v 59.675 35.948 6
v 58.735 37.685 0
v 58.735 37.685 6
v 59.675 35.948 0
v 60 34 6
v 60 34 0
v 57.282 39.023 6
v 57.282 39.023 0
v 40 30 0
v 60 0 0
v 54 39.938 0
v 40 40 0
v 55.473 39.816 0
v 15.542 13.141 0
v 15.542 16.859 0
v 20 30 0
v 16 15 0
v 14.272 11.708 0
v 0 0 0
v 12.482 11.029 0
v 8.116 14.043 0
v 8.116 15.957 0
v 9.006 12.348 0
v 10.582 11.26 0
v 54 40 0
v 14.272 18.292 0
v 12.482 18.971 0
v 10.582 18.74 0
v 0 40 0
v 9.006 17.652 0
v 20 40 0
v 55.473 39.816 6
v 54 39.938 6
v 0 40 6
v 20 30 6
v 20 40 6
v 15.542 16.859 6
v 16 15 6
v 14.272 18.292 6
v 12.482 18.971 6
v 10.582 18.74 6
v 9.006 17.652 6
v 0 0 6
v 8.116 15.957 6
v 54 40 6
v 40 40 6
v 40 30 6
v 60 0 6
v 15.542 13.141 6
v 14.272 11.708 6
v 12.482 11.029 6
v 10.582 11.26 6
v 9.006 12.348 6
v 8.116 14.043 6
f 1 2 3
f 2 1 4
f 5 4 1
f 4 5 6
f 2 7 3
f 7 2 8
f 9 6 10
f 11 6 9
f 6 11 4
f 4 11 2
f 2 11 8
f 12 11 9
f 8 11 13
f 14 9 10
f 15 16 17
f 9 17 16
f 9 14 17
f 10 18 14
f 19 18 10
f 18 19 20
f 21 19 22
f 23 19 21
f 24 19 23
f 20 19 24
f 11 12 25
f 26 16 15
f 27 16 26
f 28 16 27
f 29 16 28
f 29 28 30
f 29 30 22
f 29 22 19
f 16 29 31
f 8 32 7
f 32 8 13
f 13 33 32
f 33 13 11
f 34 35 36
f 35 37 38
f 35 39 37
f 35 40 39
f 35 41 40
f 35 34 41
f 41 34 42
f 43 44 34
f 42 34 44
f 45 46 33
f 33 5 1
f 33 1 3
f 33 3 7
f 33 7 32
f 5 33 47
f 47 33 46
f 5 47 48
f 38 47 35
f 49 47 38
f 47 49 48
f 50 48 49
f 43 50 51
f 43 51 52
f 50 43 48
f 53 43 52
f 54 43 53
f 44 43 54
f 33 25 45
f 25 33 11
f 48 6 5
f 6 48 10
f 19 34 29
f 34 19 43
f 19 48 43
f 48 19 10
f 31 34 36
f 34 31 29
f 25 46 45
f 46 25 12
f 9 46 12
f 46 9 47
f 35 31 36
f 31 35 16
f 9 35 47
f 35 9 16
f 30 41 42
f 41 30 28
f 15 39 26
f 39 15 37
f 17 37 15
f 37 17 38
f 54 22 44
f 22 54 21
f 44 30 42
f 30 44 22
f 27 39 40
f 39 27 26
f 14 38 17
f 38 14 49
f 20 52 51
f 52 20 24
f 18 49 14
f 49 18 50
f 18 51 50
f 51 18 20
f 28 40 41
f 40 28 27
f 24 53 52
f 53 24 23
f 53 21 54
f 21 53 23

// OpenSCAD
/* doodle-meta {"version":1,"parameters":{"width":{"label":"Overall width","description":"Changes the body width","unit":"mm","feature":"body_width"},"depth":{"label":"Overall depth","description":"Changes the body depth","unit":"mm","feature":"body_depth"},"thickness":{"label":"Thickness","description":"Changes the plate thickness","unit":"mm","feature":"body_thickness"},"notch_width":{"label":"Notch width","description":"Changes the width of the top notch","unit":"mm","feature":"notch"},"notch_depth":{"label":"Notch depth","description":"Changes the depth of the top notch","unit":"mm","feature":"notch"},"hole_diameter":{"label":"Hole diameter","description":"Changes the diameter of the through hole","unit":"mm","feature":"hole"},"hole_x":{"label":"Hole X position","description":"Changes the X position of the hole center","unit":"mm","feature":"hole"},"hole_y":{"label":"Hole Y position","description":"Changes the Y position of the hole center","unit":"mm","feature":"hole"},"fillet_radius":{"label":"Fillet radius","description":"Changes the radius of the top-right corner fillet","unit":"mm","feature":"fillet"}},"features":{"body_width":{"kind":"dimension","axis":"x","label":"Overall width"},"body_depth":{"kind":"dimension","axis":"y","label":"Overall depth"},"body_thickness":{"kind":"dimension","axis":"z","label":"Thickness"},"notch":{"kind":"region","label":"Top Notch","min":[{"parameter":"width","scale":0.5,"offset":-10},{"parameter":"depth","scale":1,"offset":-10},0],"max":[{"parameter":"width","scale":0.5,"offset":10},{"parameter":"depth","scale":1,"offset":0},{"parameter":"thickness","scale":1,"offset":0}]},"hole":{"kind":"region","label":"Through Hole","min":[{"parameter":"hole_x","scale":1,"offset":-4},{"parameter":"hole_y","scale":1,"offset":-4},0],"max":[{"parameter":"hole_x","scale":1,"offset":4},{"parameter":"hole_y","scale":1,"offset":4},{"parameter":"thickness","scale":1,"offset":0}]},"fillet":{"kind":"region","label":"Top Right Fillet","min":[{"parameter":"width","scale":1,"offset":-6},{"parameter":"depth","scale":1,"offset":-6},0],"max":[{"parameter":"width","scale":1,"offset":0},{"parameter":"depth","scale":1,"offset":0},{"parameter":"thickness","scale":1,"offset":0}]}}} */

// Top-level parameters (allowlist)
width = 60;
depth = 40;
thickness = 6;
notch_width = 20;
notch_depth = 10;
hole_diameter = 8;
hole_x = 12;
hole_y = 15;
fillet_radius = 6;

// Derived constants (not in allowlist)
eps = 0.01;

// Main design
notched_plate();

module notched_plate() {
    difference() {
        // Positive body: extruded profile with fillet
        union() {
            // Main rectangular body
            cube([width, depth, thickness]);
            
            // Fillet at top-right corner (X=width, Y=depth)
            // The fillet replaces the sharp corner. We add a quarter cylinder 
            // and subtract the corner cube to create the rounded effect, 
            // or more simply, we can model the base shape with the fillet included.
            // However, standard CSG approach:
            // 1. Start with full rectangle.
            // 2. Subtract the corner square.
            // 3. Add the quarter cylinder.
            // But since we are using difference() for the whole object, 
            // it's cleaner to build the positive shape first.
            
            // Let's rebuild the positive shape properly:
            // Base rectangle minus corner square plus quarter cylinder
        }
        
        // Subtract the notch
        notch_cutter();
        
        // Subtract the hole
        hole_cutter();
    }
}

// Helper to build the positive body with fillet
module positive_body() {
    // The main body is a rectangle with a filleted corner.
    // We can construct this by:
    // 1. A cube covering the whole area.
    // 2. Subtracting the corner square (width-fillet_radius to width, depth-fillet_radius to depth).
    // 3. Adding a quarter cylinder at the corner.
    
    // Since we are inside a difference() in the main module, 
    // we need to be careful. Let's restructure.
    
    // Actually, let's just define the positive geometry as a union of parts 
    // that form the correct shape, then subtract the cuts.
    
    // Part 1: The main block without the filleted corner
    // We can split the rectangle into:
    // - A large rectangle from (0,0) to (width, depth-fillet_radius)
    // - A rectangle from (0, depth-fillet_radius) to (width-fillet_radius, depth)
    // - A quarter cylinder at (width-fillet_radius, depth-fillet_radius)
    
    // This is complex. A simpler way for OpenSCAD:
    // Use a hull or minkowski? No, keep it simple.
    
    // Let's use the standard "subtract corner, add cylinder" approach 
    // but apply it to the positive shape before the final difference.
    
    // Wait, the main module is `difference()`. 
    // The first argument is the positive shape.
    // So I should define a module `base_shape()` that returns the solid plate with fillet.
    
    // Let's rewrite the main module to use a helper for the base shape.
}

// Redefining the main module for clarity and correctness
module notched_plate() {
    difference() {
        base_plate();
        notch_cutter();
        hole_cutter();
    }
}

module base_plate() {
    // Construct the plate with the fillet on the top-right corner (X=width, Y=depth)
    
    // 1. Main body excluding the corner square
    // We can create the shape by unioning:
    // - A rectangle covering most of the plate
    // - A quarter cylinder for the corner
    
    // Rectangle 1: Full width, height up to (depth - fillet_radius)
    // This covers the bottom part and the left part of the top strip.
    // Actually, let's do:
    // - Rectangle from (0,0) to (width, depth - fillet_radius)
    // - Rectangle from (0, depth - fillet_radius) to (width - fillet_radius, depth)
    // - Quarter cylinder at (width - fillet_radius, depth - fillet_radius)
    
    // Rectangle 1: Bottom section
    translate([0, 0, 0])
        cube([width, depth - fillet_radius, thickness]);
        
    // Rectangle 2: Top-left section (excluding the corner)
    translate([0, depth - fillet_radius, 0])
        cube([width - fillet_radius, fillet_radius, thickness]);
        
    // Quarter Cylinder: Top-right corner
    // Center of the full cylinder would be at (width - fillet_radius, depth - fillet_radius)
    // We want the quarter that fills the corner (X > width-fr, Y > depth-fr)
    // A cylinder centered at (width-fr, depth-fr) with radius fr.
    // We need to intersect it with the corner box to get the quarter.
    // Or simpler: 
    // Create a cylinder centered at (width-fr, depth-fr).
    // Intersect with a cube from (width-fr, depth-fr) to (width, depth).
    
    translate([width - fillet_radius, depth - fillet_radius, 0])
        intersection() {
            cylinder(h = thickness, r = fillet_radius, center = false);
            // The cylinder is centered at the corner of the intersection box?
            // No, cylinder center is at (0,0) in local coords.
            // We want the quadrant where x>0, y>0.
            // So we intersect with a cube starting at 0,0.
            translate([0, 0, 0])
                cube([fillet_radius, fillet_radius, thickness]);
        }
}

module notch_cutter() {
    // Notch is on the top edge (Y=depth), centered on X.
    // Width: notch_width, Depth: notch_depth.
    // It cuts through the thickness.
    
    // Center X is width/2.
    // The notch extends from Y = depth - notch_depth to Y = depth.
    // X extends from (width/2 - notch_width/2) to (width/2 + notch_width/2).
    
    translate([width/2 - notch_width/2, depth - notch_depth, -eps])
        cube([notch_width, notch_depth + eps, thickness + 2*eps]);
}

module hole_cutter() {
    // Hole is at (hole_x, hole_y).
    // Diameter: hole_diameter.
    // Through the thickness.
    
    // Cylinder axis is Z.
    translate([hole_x, hole_y, -eps])
        cylinder(h = thickness + 2*eps, d = hole_diameter, center = false);
}
